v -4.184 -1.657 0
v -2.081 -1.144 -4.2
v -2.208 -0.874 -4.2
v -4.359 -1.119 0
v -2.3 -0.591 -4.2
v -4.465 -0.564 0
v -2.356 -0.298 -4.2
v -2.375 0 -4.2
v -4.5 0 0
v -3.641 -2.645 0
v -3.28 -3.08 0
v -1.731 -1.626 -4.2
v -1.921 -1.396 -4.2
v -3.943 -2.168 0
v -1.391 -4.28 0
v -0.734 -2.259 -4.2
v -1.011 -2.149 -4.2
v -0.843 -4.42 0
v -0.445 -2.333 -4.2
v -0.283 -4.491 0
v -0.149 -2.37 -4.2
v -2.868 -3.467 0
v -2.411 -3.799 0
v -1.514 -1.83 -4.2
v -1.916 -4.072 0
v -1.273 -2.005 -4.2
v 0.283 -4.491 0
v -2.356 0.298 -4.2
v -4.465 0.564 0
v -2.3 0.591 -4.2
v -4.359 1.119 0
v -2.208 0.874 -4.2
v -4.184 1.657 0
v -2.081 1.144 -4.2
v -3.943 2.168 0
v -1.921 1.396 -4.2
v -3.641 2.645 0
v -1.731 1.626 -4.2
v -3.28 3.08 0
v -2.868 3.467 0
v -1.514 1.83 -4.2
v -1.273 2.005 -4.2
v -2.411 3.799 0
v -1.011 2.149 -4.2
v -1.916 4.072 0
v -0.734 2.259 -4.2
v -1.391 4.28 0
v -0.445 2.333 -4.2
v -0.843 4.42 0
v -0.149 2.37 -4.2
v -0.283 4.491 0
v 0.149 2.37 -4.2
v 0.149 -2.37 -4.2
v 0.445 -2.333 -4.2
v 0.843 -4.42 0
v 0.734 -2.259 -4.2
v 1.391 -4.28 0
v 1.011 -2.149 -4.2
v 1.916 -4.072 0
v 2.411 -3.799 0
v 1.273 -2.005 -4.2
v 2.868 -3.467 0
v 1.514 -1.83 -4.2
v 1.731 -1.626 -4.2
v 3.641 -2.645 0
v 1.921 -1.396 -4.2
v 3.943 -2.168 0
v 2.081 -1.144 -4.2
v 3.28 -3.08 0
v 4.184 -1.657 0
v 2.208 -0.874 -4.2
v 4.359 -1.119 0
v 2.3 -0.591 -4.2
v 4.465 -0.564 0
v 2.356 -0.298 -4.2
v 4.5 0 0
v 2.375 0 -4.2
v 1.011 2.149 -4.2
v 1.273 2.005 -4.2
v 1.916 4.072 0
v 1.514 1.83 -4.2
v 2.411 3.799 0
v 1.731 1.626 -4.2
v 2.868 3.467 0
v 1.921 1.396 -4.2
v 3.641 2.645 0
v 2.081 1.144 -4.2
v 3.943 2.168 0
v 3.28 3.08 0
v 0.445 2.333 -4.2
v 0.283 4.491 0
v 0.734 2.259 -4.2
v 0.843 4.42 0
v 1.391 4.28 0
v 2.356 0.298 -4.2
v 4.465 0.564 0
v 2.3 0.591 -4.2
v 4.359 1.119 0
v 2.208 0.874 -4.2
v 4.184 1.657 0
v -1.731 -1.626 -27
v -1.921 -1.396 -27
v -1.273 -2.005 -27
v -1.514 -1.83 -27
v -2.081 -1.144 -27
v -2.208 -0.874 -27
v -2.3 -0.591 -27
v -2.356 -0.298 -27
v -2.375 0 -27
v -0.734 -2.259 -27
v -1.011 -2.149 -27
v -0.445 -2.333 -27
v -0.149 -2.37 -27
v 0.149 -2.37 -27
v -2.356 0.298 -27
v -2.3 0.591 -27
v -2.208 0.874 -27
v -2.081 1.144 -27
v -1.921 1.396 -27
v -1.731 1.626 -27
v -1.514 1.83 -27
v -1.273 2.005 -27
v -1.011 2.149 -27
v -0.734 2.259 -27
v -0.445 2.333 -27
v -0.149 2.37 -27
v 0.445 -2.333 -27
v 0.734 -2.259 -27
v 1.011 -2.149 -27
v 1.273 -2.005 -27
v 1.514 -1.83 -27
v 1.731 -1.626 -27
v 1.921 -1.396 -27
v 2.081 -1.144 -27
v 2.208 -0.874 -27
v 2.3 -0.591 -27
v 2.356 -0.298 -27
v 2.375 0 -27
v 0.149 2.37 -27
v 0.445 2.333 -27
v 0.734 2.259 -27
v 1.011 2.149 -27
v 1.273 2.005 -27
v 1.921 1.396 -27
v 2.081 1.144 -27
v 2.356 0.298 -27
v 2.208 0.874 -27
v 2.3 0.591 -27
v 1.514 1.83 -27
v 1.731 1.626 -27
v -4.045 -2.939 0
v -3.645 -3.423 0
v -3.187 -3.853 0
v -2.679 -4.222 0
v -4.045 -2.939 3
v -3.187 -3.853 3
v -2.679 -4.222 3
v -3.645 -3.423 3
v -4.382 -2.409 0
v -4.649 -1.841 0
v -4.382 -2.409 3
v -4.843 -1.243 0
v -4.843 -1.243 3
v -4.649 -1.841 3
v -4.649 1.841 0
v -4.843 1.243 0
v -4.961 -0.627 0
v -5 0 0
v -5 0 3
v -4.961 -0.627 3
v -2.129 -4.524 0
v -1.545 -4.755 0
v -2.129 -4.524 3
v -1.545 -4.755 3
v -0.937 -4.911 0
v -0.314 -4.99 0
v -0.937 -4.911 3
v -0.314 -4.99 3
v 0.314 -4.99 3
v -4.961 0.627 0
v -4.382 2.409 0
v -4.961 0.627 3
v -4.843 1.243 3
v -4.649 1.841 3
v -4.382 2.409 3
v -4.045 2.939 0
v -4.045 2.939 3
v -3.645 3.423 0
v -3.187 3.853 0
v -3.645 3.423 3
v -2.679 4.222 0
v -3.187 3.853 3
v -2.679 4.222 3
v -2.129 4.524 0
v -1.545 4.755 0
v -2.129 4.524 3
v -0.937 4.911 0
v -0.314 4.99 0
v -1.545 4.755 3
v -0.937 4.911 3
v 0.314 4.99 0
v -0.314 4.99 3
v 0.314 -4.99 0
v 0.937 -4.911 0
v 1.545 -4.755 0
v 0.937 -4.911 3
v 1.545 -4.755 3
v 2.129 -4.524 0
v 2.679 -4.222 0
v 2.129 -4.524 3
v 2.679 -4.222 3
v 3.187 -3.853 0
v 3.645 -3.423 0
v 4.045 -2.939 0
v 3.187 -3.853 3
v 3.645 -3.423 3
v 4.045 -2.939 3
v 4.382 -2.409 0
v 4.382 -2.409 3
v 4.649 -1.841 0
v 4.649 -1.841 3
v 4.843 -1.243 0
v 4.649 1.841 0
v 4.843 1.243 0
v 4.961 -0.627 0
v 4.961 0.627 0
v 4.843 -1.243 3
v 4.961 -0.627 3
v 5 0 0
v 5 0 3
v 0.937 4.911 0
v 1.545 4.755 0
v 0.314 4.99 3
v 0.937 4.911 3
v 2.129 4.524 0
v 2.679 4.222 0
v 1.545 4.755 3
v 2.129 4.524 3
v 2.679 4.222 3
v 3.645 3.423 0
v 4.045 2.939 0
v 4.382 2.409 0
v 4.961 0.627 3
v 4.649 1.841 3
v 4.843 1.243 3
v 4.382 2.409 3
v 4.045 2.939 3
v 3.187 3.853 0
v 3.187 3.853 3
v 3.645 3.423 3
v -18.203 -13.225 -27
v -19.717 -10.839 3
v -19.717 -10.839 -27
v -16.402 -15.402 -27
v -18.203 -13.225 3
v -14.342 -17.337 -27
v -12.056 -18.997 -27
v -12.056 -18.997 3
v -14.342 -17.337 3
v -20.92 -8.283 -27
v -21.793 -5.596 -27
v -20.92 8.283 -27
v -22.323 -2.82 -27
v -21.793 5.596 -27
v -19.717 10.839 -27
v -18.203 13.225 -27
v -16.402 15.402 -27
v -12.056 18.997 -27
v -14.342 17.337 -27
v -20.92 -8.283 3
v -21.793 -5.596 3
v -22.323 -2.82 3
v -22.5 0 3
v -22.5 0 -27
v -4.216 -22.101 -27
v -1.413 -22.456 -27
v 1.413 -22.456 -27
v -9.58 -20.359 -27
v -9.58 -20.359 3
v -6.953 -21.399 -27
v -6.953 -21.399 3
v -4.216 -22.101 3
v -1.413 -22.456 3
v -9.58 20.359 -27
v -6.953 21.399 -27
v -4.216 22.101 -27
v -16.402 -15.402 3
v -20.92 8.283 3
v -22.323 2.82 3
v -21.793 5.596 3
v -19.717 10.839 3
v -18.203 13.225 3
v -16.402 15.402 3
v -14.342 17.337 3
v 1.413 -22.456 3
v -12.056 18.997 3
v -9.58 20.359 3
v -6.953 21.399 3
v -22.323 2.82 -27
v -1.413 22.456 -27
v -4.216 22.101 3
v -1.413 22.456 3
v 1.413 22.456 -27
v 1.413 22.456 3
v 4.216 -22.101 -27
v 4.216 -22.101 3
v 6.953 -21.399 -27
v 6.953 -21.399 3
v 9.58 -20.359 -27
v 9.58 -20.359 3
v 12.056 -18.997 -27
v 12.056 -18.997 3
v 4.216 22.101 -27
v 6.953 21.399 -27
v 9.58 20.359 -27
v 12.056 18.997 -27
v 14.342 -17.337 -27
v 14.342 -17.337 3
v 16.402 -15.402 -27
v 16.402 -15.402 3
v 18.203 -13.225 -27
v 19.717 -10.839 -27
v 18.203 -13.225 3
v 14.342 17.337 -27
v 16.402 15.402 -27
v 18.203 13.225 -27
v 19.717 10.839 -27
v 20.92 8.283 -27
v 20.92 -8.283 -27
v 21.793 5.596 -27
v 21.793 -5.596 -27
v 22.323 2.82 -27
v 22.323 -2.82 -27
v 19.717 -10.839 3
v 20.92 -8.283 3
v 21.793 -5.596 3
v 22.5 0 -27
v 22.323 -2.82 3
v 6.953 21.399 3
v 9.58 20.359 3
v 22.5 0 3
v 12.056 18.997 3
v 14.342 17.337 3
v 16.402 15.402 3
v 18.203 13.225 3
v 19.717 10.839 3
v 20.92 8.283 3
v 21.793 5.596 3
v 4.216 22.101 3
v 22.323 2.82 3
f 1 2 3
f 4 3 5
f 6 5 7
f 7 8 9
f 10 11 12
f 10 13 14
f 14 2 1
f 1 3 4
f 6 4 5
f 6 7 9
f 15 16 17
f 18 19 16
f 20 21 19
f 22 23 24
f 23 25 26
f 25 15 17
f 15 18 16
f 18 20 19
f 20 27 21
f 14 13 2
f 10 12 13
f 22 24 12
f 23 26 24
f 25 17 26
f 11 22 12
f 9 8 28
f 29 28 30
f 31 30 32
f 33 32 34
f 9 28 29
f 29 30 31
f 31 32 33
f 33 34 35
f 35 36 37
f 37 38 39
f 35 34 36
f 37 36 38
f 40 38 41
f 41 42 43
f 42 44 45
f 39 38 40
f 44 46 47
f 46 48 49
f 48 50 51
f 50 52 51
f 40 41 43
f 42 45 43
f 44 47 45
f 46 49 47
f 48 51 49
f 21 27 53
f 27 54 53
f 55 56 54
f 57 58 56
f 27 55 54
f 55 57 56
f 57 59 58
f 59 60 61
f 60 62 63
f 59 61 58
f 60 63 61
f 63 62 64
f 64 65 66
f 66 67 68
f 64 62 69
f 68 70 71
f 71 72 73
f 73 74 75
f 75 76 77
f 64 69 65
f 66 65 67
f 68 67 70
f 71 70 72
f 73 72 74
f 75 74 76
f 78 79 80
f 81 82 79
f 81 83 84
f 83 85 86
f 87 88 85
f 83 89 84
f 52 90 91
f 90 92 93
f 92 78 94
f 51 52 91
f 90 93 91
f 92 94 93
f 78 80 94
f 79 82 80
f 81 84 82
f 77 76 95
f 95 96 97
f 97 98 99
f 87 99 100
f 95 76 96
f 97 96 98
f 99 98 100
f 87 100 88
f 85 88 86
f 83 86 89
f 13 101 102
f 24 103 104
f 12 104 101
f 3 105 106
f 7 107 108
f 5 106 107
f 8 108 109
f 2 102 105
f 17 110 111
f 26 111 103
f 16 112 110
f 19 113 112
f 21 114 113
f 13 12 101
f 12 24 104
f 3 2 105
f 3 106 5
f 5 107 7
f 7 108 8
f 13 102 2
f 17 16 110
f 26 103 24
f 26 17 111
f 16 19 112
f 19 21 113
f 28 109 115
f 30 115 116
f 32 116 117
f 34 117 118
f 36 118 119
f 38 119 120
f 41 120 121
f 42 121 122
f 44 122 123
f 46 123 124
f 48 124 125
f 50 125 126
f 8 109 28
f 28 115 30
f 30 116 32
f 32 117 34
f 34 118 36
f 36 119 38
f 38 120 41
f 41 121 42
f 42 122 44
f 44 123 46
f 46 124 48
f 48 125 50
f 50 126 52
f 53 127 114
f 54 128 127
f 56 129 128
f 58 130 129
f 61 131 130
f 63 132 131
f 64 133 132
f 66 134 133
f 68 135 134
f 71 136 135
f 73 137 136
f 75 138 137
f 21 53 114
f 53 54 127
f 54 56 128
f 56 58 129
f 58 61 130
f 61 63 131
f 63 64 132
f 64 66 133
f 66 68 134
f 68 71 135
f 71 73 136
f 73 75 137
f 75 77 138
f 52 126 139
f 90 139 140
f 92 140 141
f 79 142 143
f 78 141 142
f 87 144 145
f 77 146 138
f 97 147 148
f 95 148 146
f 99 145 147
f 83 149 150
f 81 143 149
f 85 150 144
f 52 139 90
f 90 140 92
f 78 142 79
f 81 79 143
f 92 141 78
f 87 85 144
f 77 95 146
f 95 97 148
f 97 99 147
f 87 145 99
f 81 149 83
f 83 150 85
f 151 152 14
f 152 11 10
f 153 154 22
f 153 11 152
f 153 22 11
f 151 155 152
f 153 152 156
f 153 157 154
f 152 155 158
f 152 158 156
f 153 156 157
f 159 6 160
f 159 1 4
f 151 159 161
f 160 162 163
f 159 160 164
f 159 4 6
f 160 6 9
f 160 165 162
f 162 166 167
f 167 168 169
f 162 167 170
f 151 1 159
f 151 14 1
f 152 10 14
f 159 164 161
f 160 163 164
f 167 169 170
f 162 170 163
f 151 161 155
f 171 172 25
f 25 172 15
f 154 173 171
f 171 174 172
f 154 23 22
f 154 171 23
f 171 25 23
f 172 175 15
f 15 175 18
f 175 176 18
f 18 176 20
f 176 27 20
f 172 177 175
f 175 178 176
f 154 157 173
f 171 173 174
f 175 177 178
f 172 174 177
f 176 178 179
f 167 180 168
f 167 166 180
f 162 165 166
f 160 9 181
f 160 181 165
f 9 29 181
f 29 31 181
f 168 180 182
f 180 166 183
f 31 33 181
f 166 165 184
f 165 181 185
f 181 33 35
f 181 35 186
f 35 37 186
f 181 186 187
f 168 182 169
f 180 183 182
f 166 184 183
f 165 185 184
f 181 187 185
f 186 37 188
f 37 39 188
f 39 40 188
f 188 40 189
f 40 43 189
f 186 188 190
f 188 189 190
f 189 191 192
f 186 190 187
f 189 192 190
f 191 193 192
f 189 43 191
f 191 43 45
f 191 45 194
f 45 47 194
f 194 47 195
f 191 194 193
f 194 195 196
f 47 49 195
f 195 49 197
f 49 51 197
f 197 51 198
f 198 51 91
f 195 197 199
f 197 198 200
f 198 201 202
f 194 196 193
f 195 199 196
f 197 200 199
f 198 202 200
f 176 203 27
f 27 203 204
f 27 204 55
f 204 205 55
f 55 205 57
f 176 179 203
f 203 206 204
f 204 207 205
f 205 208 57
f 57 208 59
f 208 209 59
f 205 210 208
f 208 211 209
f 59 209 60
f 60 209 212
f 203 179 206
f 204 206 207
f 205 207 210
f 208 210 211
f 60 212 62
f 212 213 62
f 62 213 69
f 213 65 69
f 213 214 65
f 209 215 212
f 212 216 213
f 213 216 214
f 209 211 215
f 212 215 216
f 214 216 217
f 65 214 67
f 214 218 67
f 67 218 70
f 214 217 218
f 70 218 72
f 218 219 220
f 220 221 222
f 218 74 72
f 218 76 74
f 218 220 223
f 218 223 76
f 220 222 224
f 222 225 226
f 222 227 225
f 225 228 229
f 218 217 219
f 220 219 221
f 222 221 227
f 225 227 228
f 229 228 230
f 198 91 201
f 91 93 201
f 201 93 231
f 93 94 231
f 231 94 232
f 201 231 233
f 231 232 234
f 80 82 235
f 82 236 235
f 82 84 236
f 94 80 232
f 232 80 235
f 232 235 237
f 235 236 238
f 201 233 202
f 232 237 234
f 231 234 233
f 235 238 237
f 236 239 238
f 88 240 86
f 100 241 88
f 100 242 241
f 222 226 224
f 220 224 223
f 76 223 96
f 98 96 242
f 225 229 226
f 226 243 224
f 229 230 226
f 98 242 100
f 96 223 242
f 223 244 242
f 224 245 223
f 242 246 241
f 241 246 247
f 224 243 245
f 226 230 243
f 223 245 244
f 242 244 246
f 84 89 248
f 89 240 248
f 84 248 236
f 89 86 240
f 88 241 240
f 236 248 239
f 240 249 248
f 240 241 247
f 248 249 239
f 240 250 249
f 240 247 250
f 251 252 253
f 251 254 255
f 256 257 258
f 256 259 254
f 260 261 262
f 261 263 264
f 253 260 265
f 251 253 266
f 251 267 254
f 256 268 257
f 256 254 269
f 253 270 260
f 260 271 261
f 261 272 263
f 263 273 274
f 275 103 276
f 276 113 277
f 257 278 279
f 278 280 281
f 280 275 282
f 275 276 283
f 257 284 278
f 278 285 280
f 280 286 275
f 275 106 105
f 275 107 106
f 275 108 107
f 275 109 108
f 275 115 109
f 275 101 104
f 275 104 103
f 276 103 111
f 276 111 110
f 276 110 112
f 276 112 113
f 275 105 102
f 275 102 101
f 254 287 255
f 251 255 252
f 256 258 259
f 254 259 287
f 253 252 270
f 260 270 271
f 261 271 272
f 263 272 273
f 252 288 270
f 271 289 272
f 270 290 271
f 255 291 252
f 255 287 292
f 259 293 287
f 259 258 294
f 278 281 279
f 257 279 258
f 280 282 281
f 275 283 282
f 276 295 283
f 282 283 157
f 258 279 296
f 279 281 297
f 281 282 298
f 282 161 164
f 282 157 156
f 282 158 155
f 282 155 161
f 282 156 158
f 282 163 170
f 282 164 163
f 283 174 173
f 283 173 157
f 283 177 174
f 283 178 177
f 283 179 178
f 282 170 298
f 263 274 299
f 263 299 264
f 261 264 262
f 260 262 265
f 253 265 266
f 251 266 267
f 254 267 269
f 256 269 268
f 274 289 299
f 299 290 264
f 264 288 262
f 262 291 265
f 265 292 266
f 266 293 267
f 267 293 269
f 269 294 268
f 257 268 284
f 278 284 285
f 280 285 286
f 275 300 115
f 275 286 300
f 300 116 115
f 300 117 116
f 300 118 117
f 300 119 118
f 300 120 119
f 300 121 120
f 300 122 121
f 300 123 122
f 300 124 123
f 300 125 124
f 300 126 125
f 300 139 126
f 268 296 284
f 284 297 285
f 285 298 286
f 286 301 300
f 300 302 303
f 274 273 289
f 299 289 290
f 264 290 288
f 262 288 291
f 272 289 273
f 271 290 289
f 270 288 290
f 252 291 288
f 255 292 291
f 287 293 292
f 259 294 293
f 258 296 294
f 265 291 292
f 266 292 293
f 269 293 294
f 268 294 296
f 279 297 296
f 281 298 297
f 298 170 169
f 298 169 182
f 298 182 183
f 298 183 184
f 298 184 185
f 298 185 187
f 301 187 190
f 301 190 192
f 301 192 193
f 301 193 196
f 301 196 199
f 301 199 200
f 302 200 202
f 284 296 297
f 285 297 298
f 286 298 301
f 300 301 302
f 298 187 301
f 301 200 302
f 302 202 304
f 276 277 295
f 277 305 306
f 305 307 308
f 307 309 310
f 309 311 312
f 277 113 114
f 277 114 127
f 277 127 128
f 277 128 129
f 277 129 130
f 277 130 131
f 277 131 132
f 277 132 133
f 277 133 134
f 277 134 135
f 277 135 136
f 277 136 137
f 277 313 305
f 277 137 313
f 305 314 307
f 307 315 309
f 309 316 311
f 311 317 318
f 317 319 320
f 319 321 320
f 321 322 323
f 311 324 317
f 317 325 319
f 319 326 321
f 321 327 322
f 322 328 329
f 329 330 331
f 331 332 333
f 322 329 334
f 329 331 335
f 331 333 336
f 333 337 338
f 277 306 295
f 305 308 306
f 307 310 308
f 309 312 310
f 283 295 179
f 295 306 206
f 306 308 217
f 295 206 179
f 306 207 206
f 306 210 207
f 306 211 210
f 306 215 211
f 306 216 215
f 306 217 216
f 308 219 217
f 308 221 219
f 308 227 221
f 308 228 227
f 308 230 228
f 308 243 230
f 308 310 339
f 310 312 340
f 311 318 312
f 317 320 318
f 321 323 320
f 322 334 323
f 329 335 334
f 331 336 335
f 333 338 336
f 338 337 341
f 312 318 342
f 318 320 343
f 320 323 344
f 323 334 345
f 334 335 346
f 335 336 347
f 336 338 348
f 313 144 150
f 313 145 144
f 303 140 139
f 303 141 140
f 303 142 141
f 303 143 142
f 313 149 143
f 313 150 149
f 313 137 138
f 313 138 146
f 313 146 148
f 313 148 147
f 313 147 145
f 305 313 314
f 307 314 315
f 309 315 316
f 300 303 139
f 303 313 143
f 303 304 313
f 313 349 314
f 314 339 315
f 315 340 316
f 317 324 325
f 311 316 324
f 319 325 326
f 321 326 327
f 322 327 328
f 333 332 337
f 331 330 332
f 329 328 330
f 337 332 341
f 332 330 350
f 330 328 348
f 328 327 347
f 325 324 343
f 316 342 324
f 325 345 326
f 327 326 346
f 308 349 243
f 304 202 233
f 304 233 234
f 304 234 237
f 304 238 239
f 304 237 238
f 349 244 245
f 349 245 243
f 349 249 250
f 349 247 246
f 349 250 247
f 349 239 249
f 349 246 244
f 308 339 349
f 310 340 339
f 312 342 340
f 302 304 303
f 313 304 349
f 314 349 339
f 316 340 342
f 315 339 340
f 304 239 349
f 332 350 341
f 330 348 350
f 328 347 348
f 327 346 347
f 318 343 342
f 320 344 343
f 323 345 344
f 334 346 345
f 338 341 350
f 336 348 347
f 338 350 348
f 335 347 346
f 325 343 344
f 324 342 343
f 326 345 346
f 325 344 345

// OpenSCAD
$fn = 50;

difference() {
	union() {
		translate(v = [0, 0, -27.0]) {
			cylinder(h = 30, r = 22.5);
		}
	}
	union() {
		translate(v = [0, 0, 0]) {
			rotate(a = [0, 0, 0]) {
				difference() {
					union() {
						translate(v = [0, 0, -30.0]) {
							cylinder(h = 30, r = 2.25);
						}
						translate(v = [0, 0, -4.2]) {
							cylinder(h = 4.2, r1 = 2.375, r2 = 4.5);
						}
						translate(v = [0, 0, -30.0]) {
							cylinder(h = 30, r = 2.375);
						}
						translate(v = [0, 0, -30.0]) {
							cylinder(h = 30, r = 2.25);
						}
					}
					union();
				}
			}
		}
		#cylinder(h = 3, r = 5.0);
	}
}
